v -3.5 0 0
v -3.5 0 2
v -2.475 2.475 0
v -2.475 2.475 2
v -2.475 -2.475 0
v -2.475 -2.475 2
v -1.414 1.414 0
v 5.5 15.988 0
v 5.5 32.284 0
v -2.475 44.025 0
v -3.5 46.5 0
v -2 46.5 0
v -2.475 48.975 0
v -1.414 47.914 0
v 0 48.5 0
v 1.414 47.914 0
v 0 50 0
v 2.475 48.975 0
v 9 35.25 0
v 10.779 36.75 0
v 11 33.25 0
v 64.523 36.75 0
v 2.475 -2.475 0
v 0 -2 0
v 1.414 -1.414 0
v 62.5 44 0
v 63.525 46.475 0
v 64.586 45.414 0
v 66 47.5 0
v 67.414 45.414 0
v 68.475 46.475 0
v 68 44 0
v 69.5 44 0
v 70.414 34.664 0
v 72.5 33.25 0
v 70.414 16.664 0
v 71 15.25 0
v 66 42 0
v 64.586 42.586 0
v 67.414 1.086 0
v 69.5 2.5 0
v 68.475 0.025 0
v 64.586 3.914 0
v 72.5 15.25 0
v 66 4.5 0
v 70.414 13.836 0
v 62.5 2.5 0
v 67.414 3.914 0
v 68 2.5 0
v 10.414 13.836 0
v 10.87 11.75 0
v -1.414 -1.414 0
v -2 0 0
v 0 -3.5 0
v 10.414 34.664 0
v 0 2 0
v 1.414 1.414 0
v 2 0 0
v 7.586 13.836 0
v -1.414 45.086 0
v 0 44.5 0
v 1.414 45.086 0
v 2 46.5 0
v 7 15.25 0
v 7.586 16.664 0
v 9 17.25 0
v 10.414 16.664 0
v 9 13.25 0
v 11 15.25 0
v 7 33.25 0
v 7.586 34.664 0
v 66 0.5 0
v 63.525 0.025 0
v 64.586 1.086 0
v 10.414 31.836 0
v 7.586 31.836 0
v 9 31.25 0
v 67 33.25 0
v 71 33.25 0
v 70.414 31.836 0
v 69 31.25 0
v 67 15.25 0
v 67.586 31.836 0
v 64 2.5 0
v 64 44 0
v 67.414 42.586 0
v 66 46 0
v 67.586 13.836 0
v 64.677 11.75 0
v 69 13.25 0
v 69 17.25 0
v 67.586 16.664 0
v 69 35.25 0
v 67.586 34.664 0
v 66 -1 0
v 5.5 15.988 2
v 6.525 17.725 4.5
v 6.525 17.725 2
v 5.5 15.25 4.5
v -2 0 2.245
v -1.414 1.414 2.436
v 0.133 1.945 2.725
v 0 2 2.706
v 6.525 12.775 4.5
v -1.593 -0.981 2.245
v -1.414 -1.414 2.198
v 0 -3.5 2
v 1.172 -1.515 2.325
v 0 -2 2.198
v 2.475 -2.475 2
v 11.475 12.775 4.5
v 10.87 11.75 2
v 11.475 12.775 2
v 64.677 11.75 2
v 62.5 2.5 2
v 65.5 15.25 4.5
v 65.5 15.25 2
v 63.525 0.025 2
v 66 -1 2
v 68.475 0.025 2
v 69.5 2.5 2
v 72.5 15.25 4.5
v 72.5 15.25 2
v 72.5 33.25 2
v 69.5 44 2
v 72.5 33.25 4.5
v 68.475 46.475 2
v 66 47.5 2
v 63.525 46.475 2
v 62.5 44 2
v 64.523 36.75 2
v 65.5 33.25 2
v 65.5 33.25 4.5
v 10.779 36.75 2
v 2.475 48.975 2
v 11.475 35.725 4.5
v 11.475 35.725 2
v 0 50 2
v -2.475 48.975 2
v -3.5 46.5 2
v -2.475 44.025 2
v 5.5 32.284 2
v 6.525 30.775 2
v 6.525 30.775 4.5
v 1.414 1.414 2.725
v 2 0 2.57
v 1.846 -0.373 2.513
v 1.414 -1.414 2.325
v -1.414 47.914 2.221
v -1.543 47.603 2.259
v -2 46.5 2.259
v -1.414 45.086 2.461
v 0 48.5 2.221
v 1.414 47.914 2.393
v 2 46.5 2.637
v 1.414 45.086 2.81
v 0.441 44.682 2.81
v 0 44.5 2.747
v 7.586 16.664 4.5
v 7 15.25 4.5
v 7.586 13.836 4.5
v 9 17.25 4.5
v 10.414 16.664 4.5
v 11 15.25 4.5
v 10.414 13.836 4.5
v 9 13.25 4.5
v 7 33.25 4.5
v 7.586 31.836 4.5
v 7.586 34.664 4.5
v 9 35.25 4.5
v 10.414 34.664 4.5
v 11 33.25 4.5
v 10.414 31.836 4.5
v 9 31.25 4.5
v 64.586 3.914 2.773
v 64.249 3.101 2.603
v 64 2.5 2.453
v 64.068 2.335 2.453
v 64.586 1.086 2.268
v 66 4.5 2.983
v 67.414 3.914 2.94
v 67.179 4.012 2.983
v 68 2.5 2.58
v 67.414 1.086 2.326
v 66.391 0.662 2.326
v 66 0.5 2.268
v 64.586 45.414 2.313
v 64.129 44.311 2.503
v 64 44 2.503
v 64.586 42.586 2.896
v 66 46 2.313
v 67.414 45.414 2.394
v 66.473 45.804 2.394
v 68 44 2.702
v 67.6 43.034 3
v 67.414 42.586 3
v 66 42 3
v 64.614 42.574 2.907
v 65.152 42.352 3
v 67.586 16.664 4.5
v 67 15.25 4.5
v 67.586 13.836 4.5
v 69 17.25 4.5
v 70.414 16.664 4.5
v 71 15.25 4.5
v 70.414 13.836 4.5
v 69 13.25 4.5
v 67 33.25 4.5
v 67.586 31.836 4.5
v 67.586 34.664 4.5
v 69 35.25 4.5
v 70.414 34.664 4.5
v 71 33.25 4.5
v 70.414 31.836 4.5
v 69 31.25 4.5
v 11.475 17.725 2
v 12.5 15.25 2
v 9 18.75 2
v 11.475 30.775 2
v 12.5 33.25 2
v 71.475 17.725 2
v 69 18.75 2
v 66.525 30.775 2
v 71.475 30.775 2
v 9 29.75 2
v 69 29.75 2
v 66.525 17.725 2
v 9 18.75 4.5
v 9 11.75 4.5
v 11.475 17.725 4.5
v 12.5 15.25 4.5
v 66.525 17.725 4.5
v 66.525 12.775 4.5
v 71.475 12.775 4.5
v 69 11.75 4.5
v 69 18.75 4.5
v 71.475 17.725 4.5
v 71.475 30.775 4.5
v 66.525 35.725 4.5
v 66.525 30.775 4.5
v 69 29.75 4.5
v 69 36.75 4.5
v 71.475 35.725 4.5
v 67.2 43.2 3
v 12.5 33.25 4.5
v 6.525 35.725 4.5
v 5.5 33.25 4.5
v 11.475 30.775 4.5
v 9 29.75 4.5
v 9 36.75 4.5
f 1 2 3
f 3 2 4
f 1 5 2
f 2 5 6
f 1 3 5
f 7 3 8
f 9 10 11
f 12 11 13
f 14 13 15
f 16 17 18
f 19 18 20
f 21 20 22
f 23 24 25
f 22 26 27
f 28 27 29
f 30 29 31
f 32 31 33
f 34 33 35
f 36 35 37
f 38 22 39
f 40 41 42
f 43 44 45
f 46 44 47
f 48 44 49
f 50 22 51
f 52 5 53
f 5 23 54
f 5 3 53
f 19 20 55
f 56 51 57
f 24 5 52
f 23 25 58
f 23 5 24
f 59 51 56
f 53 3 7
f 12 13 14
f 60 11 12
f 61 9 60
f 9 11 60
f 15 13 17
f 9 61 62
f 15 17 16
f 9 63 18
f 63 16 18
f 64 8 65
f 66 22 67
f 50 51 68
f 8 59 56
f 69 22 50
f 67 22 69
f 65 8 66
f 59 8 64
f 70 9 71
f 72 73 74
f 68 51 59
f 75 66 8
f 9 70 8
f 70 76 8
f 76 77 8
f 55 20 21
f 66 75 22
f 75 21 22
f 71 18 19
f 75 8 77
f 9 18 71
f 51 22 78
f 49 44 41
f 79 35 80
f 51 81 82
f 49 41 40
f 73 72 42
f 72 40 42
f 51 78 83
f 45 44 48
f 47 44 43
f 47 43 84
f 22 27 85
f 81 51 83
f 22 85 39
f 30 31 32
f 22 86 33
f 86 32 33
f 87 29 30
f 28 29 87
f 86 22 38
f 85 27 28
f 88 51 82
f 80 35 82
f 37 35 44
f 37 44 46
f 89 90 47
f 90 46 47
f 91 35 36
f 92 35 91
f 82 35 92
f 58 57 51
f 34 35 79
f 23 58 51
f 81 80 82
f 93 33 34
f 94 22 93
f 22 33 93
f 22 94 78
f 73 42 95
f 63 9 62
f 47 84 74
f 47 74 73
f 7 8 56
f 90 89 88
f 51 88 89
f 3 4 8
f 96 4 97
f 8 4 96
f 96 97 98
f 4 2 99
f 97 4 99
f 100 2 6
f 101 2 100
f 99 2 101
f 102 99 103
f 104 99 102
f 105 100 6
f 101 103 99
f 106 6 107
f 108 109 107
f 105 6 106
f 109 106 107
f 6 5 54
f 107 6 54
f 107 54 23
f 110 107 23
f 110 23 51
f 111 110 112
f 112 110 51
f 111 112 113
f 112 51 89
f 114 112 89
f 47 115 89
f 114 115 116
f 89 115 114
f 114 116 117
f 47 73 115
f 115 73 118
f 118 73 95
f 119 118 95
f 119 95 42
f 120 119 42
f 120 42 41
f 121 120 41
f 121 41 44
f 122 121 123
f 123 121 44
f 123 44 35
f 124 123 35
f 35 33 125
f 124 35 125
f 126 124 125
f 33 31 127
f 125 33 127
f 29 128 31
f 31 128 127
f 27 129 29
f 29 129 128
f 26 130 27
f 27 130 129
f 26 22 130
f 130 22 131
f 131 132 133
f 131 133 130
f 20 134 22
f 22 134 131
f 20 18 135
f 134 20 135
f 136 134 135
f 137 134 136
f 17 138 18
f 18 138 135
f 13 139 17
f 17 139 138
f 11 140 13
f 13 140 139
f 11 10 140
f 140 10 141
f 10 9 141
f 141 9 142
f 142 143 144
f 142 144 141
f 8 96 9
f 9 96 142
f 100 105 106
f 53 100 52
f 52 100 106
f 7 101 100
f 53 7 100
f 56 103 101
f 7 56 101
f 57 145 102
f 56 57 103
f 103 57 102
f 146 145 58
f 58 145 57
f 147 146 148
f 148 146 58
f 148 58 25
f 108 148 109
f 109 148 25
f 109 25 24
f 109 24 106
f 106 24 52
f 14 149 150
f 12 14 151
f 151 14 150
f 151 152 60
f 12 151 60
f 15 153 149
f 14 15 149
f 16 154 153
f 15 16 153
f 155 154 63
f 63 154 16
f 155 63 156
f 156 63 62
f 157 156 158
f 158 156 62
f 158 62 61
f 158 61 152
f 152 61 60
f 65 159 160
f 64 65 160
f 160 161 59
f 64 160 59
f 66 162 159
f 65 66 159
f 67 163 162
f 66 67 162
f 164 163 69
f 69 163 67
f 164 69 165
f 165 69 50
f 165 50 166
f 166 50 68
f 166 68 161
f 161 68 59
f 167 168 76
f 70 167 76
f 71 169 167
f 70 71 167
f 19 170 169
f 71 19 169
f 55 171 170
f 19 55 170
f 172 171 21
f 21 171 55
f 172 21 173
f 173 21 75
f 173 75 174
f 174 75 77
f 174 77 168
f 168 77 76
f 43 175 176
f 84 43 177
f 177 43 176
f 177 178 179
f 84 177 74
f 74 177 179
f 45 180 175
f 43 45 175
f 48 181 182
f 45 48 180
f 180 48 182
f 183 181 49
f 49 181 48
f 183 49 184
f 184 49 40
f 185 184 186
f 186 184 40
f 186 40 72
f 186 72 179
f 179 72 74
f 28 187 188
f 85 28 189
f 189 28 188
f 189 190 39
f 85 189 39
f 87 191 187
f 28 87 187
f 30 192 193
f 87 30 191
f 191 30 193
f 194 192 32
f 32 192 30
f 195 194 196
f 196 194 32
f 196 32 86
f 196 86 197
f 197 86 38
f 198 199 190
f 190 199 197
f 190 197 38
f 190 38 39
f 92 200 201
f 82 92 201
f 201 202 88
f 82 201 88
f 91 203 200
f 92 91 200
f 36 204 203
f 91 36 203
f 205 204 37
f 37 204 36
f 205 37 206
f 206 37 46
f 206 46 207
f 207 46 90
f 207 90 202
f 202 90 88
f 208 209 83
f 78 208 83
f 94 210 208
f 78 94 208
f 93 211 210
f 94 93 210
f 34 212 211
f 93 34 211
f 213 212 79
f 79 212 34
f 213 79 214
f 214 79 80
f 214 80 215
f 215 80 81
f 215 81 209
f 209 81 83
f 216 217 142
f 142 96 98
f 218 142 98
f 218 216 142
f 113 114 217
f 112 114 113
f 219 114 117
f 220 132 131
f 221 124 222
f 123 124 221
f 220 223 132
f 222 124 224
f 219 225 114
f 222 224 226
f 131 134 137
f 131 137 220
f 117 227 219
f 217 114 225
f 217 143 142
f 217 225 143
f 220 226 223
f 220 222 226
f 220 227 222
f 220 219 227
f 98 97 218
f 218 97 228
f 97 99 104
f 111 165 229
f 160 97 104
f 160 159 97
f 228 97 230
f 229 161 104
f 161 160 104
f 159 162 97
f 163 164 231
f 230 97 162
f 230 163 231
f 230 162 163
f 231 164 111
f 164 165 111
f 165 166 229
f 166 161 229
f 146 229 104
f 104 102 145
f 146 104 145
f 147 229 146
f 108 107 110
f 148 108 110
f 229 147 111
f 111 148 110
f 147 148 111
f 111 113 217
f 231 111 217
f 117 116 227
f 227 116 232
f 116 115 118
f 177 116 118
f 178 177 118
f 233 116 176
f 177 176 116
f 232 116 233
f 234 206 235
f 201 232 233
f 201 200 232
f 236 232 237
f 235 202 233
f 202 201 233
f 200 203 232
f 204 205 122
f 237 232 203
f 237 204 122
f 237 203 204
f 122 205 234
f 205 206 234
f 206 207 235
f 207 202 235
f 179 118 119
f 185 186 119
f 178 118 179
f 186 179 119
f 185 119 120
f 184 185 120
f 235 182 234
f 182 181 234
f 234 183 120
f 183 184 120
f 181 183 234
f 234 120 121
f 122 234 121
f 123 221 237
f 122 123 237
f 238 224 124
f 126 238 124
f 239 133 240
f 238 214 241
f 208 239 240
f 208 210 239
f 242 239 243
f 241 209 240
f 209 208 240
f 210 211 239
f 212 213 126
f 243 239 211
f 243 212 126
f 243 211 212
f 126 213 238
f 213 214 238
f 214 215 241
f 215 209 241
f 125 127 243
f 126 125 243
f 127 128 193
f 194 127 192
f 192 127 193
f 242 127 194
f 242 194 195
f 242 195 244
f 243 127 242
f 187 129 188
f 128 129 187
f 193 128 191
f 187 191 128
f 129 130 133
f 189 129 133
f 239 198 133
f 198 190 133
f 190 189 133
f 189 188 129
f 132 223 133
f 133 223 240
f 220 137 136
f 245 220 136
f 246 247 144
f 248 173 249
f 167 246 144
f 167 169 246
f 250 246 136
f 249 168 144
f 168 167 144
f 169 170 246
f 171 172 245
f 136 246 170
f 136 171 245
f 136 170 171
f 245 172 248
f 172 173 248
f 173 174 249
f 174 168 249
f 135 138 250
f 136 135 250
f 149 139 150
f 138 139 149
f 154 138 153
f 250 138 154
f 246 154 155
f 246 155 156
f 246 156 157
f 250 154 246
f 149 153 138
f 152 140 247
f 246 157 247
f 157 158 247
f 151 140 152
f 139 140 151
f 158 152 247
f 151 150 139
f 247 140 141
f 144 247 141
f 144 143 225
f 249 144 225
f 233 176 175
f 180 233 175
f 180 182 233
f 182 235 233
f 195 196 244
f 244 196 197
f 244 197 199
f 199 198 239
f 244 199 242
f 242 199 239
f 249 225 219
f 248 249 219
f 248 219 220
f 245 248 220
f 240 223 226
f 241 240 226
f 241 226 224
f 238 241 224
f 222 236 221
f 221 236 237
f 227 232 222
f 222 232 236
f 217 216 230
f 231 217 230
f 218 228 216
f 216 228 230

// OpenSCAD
// file: raid3r/raid3r.scad
/*Pequeña biblioteca con las funciones mas comunes*/

module agujereado(X,Y,H){
	union(){
		for(j=[0:X-1])
		{
			translate([0,j*8,0])
			{
				for(i=[0:Y-1])
				{
					translate([i*6,0,-1])cylinder(r=1.2, h=H, $fn=10);
				}
			}
		}
	}
}

module dynahole(H){
	translate([-45.5/2,-10,1])union(){
		translate([3.5+6,16,0])agujereado(4,1,H);
		translate([9.5+26.5,16,0])agujereado(4,1,H);
		translate([45.5/2,10,-1])cylinder(r=11.5,h=H);	
		translate([(45.5-20)/2,6.5,-1])cube([20,36,H]);
		translate([22.5,46,0])union(){
			translate([7,0,-1])cylinder(r=1.5, h=H, $fn=10);
			translate([-7,0,-1])cylinder(r=1.5, h=H, $fn=10);
		}
	}
}

module cruz(H){
	translate([-34,-13,3])union(){
		translate([34,13,-3]) cylinder(r=4,h=H);
		translate([42,13,-3]) cylinder(r=1.5,h=H);
		translate([26,13,-3]) cylinder(r=1.5,h=H);
		translate([34,21,-3]) cylinder(r=1.5,h=H);
		translate([34,5,-3]) cylinder(r=1.5,h=H);
	}
}

module miniservo(H){
	translate([-15,-7,0])union(){
		translate([15,7,0])rotate([0,0,0])cylinder(r=8,h=H);
		translate([-1.75,7,0])union(){
			cylinder(r=1.5, h=H,$fn=20);
			translate([27.5,0,0])cylinder(r=1.5, h=H,$fn=20);
		}
	}
}

module beagleboneHoles(z){
union(){
	translate([0,0,-1])cylinder(r=2,h=z, $fn=8);
	translate([0,46.5,-1])cylinder(r=2,h=z, $fn=8);
	translate([64.5+1.5,2.5,-1])cylinder(r=2,h=z, $fn=8);
	translate([64.5+1.5,44,-1])cylinder(r=2,h=z, $fn=8);
	translate([0,0,-1])cylinder(r=3,h=3, $fn=8);
	translate([0,46.5,-1])cylinder(r=3,h=3, $fn=8);
	translate([64.5+1.5,2.5,-1])cylinder(r=3,h=3, $fn=8);
	translate([64.5+1.5,44,-1])cylinder(r=3,h=3, $fn=8);
	}
}
// main file
use <raid3r/raid3r.scad>

z=2;
x=9;
y=46.5/2-8;
difference(){
	union(){
		hull(){
			translate([0,0,0])cylinder(r=3.5,h=z, $fn=8);
			translate([0+x,0+y,0])cylinder(r=3.5,h=z+2.5, $fn=8);
		}
		hull(){
			translate([66,44,0])cylinder(r=3.5,h=z, $fn=8);
			translate([60+x,18+y,0])cylinder(r=3.5,h=z+2.5, $fn=8);
		}
		hull(){
			translate([0,46.5,0])cylinder(r=3.5,h=z, $fn=8);
			translate([0+x,18+y,0])cylinder(r=3.5,h=z+2.5, $fn=8);
		}
		hull(){
			translate([66,2.5,0])cylinder(r=3.5,h=z, $fn=8);
			translate([60+x,0+y,0])cylinder(r=3.5,h=z+2.5, $fn=8);
		}
		hull(){
			translate([0+x,0+y,0])cylinder(r=3.5,h=z, $fn=8);
			translate([60+x,0+y,0])cylinder(r=3.5,h=z, $fn=8);
			translate([0+x,18+y,0])cylinder(r=3.5,h=z, $fn=8);
			translate([60+x,18+y,0])cylinder(r=3.5,h=z, $fn=8);
		}
	}
	translate([0+x,0+y,-1])cylinder(r=2,h=z+6, $fn=8);
	translate([60+x,0+y,-1])cylinder(r=2,h=z+6, $fn=8);
	translate([0+x,18+y,-1])cylinder(r=2,h=z+6, $fn=8);
	translate([60+x,18+y,-1])cylinder(r=2,h=z+6, $fn=8);
	translate([0,0,-1])cylinder(r=2,h=z+2, $fn=8);
	translate([0,46.5,-1])cylinder(r=2,h=z+2, $fn=8);
	translate([66,2.5,-1])cylinder(r=2,h=z+2, $fn=8);
	translate([66,44,-1])cylinder(r=2,h=z+2, $fn=8);
}
